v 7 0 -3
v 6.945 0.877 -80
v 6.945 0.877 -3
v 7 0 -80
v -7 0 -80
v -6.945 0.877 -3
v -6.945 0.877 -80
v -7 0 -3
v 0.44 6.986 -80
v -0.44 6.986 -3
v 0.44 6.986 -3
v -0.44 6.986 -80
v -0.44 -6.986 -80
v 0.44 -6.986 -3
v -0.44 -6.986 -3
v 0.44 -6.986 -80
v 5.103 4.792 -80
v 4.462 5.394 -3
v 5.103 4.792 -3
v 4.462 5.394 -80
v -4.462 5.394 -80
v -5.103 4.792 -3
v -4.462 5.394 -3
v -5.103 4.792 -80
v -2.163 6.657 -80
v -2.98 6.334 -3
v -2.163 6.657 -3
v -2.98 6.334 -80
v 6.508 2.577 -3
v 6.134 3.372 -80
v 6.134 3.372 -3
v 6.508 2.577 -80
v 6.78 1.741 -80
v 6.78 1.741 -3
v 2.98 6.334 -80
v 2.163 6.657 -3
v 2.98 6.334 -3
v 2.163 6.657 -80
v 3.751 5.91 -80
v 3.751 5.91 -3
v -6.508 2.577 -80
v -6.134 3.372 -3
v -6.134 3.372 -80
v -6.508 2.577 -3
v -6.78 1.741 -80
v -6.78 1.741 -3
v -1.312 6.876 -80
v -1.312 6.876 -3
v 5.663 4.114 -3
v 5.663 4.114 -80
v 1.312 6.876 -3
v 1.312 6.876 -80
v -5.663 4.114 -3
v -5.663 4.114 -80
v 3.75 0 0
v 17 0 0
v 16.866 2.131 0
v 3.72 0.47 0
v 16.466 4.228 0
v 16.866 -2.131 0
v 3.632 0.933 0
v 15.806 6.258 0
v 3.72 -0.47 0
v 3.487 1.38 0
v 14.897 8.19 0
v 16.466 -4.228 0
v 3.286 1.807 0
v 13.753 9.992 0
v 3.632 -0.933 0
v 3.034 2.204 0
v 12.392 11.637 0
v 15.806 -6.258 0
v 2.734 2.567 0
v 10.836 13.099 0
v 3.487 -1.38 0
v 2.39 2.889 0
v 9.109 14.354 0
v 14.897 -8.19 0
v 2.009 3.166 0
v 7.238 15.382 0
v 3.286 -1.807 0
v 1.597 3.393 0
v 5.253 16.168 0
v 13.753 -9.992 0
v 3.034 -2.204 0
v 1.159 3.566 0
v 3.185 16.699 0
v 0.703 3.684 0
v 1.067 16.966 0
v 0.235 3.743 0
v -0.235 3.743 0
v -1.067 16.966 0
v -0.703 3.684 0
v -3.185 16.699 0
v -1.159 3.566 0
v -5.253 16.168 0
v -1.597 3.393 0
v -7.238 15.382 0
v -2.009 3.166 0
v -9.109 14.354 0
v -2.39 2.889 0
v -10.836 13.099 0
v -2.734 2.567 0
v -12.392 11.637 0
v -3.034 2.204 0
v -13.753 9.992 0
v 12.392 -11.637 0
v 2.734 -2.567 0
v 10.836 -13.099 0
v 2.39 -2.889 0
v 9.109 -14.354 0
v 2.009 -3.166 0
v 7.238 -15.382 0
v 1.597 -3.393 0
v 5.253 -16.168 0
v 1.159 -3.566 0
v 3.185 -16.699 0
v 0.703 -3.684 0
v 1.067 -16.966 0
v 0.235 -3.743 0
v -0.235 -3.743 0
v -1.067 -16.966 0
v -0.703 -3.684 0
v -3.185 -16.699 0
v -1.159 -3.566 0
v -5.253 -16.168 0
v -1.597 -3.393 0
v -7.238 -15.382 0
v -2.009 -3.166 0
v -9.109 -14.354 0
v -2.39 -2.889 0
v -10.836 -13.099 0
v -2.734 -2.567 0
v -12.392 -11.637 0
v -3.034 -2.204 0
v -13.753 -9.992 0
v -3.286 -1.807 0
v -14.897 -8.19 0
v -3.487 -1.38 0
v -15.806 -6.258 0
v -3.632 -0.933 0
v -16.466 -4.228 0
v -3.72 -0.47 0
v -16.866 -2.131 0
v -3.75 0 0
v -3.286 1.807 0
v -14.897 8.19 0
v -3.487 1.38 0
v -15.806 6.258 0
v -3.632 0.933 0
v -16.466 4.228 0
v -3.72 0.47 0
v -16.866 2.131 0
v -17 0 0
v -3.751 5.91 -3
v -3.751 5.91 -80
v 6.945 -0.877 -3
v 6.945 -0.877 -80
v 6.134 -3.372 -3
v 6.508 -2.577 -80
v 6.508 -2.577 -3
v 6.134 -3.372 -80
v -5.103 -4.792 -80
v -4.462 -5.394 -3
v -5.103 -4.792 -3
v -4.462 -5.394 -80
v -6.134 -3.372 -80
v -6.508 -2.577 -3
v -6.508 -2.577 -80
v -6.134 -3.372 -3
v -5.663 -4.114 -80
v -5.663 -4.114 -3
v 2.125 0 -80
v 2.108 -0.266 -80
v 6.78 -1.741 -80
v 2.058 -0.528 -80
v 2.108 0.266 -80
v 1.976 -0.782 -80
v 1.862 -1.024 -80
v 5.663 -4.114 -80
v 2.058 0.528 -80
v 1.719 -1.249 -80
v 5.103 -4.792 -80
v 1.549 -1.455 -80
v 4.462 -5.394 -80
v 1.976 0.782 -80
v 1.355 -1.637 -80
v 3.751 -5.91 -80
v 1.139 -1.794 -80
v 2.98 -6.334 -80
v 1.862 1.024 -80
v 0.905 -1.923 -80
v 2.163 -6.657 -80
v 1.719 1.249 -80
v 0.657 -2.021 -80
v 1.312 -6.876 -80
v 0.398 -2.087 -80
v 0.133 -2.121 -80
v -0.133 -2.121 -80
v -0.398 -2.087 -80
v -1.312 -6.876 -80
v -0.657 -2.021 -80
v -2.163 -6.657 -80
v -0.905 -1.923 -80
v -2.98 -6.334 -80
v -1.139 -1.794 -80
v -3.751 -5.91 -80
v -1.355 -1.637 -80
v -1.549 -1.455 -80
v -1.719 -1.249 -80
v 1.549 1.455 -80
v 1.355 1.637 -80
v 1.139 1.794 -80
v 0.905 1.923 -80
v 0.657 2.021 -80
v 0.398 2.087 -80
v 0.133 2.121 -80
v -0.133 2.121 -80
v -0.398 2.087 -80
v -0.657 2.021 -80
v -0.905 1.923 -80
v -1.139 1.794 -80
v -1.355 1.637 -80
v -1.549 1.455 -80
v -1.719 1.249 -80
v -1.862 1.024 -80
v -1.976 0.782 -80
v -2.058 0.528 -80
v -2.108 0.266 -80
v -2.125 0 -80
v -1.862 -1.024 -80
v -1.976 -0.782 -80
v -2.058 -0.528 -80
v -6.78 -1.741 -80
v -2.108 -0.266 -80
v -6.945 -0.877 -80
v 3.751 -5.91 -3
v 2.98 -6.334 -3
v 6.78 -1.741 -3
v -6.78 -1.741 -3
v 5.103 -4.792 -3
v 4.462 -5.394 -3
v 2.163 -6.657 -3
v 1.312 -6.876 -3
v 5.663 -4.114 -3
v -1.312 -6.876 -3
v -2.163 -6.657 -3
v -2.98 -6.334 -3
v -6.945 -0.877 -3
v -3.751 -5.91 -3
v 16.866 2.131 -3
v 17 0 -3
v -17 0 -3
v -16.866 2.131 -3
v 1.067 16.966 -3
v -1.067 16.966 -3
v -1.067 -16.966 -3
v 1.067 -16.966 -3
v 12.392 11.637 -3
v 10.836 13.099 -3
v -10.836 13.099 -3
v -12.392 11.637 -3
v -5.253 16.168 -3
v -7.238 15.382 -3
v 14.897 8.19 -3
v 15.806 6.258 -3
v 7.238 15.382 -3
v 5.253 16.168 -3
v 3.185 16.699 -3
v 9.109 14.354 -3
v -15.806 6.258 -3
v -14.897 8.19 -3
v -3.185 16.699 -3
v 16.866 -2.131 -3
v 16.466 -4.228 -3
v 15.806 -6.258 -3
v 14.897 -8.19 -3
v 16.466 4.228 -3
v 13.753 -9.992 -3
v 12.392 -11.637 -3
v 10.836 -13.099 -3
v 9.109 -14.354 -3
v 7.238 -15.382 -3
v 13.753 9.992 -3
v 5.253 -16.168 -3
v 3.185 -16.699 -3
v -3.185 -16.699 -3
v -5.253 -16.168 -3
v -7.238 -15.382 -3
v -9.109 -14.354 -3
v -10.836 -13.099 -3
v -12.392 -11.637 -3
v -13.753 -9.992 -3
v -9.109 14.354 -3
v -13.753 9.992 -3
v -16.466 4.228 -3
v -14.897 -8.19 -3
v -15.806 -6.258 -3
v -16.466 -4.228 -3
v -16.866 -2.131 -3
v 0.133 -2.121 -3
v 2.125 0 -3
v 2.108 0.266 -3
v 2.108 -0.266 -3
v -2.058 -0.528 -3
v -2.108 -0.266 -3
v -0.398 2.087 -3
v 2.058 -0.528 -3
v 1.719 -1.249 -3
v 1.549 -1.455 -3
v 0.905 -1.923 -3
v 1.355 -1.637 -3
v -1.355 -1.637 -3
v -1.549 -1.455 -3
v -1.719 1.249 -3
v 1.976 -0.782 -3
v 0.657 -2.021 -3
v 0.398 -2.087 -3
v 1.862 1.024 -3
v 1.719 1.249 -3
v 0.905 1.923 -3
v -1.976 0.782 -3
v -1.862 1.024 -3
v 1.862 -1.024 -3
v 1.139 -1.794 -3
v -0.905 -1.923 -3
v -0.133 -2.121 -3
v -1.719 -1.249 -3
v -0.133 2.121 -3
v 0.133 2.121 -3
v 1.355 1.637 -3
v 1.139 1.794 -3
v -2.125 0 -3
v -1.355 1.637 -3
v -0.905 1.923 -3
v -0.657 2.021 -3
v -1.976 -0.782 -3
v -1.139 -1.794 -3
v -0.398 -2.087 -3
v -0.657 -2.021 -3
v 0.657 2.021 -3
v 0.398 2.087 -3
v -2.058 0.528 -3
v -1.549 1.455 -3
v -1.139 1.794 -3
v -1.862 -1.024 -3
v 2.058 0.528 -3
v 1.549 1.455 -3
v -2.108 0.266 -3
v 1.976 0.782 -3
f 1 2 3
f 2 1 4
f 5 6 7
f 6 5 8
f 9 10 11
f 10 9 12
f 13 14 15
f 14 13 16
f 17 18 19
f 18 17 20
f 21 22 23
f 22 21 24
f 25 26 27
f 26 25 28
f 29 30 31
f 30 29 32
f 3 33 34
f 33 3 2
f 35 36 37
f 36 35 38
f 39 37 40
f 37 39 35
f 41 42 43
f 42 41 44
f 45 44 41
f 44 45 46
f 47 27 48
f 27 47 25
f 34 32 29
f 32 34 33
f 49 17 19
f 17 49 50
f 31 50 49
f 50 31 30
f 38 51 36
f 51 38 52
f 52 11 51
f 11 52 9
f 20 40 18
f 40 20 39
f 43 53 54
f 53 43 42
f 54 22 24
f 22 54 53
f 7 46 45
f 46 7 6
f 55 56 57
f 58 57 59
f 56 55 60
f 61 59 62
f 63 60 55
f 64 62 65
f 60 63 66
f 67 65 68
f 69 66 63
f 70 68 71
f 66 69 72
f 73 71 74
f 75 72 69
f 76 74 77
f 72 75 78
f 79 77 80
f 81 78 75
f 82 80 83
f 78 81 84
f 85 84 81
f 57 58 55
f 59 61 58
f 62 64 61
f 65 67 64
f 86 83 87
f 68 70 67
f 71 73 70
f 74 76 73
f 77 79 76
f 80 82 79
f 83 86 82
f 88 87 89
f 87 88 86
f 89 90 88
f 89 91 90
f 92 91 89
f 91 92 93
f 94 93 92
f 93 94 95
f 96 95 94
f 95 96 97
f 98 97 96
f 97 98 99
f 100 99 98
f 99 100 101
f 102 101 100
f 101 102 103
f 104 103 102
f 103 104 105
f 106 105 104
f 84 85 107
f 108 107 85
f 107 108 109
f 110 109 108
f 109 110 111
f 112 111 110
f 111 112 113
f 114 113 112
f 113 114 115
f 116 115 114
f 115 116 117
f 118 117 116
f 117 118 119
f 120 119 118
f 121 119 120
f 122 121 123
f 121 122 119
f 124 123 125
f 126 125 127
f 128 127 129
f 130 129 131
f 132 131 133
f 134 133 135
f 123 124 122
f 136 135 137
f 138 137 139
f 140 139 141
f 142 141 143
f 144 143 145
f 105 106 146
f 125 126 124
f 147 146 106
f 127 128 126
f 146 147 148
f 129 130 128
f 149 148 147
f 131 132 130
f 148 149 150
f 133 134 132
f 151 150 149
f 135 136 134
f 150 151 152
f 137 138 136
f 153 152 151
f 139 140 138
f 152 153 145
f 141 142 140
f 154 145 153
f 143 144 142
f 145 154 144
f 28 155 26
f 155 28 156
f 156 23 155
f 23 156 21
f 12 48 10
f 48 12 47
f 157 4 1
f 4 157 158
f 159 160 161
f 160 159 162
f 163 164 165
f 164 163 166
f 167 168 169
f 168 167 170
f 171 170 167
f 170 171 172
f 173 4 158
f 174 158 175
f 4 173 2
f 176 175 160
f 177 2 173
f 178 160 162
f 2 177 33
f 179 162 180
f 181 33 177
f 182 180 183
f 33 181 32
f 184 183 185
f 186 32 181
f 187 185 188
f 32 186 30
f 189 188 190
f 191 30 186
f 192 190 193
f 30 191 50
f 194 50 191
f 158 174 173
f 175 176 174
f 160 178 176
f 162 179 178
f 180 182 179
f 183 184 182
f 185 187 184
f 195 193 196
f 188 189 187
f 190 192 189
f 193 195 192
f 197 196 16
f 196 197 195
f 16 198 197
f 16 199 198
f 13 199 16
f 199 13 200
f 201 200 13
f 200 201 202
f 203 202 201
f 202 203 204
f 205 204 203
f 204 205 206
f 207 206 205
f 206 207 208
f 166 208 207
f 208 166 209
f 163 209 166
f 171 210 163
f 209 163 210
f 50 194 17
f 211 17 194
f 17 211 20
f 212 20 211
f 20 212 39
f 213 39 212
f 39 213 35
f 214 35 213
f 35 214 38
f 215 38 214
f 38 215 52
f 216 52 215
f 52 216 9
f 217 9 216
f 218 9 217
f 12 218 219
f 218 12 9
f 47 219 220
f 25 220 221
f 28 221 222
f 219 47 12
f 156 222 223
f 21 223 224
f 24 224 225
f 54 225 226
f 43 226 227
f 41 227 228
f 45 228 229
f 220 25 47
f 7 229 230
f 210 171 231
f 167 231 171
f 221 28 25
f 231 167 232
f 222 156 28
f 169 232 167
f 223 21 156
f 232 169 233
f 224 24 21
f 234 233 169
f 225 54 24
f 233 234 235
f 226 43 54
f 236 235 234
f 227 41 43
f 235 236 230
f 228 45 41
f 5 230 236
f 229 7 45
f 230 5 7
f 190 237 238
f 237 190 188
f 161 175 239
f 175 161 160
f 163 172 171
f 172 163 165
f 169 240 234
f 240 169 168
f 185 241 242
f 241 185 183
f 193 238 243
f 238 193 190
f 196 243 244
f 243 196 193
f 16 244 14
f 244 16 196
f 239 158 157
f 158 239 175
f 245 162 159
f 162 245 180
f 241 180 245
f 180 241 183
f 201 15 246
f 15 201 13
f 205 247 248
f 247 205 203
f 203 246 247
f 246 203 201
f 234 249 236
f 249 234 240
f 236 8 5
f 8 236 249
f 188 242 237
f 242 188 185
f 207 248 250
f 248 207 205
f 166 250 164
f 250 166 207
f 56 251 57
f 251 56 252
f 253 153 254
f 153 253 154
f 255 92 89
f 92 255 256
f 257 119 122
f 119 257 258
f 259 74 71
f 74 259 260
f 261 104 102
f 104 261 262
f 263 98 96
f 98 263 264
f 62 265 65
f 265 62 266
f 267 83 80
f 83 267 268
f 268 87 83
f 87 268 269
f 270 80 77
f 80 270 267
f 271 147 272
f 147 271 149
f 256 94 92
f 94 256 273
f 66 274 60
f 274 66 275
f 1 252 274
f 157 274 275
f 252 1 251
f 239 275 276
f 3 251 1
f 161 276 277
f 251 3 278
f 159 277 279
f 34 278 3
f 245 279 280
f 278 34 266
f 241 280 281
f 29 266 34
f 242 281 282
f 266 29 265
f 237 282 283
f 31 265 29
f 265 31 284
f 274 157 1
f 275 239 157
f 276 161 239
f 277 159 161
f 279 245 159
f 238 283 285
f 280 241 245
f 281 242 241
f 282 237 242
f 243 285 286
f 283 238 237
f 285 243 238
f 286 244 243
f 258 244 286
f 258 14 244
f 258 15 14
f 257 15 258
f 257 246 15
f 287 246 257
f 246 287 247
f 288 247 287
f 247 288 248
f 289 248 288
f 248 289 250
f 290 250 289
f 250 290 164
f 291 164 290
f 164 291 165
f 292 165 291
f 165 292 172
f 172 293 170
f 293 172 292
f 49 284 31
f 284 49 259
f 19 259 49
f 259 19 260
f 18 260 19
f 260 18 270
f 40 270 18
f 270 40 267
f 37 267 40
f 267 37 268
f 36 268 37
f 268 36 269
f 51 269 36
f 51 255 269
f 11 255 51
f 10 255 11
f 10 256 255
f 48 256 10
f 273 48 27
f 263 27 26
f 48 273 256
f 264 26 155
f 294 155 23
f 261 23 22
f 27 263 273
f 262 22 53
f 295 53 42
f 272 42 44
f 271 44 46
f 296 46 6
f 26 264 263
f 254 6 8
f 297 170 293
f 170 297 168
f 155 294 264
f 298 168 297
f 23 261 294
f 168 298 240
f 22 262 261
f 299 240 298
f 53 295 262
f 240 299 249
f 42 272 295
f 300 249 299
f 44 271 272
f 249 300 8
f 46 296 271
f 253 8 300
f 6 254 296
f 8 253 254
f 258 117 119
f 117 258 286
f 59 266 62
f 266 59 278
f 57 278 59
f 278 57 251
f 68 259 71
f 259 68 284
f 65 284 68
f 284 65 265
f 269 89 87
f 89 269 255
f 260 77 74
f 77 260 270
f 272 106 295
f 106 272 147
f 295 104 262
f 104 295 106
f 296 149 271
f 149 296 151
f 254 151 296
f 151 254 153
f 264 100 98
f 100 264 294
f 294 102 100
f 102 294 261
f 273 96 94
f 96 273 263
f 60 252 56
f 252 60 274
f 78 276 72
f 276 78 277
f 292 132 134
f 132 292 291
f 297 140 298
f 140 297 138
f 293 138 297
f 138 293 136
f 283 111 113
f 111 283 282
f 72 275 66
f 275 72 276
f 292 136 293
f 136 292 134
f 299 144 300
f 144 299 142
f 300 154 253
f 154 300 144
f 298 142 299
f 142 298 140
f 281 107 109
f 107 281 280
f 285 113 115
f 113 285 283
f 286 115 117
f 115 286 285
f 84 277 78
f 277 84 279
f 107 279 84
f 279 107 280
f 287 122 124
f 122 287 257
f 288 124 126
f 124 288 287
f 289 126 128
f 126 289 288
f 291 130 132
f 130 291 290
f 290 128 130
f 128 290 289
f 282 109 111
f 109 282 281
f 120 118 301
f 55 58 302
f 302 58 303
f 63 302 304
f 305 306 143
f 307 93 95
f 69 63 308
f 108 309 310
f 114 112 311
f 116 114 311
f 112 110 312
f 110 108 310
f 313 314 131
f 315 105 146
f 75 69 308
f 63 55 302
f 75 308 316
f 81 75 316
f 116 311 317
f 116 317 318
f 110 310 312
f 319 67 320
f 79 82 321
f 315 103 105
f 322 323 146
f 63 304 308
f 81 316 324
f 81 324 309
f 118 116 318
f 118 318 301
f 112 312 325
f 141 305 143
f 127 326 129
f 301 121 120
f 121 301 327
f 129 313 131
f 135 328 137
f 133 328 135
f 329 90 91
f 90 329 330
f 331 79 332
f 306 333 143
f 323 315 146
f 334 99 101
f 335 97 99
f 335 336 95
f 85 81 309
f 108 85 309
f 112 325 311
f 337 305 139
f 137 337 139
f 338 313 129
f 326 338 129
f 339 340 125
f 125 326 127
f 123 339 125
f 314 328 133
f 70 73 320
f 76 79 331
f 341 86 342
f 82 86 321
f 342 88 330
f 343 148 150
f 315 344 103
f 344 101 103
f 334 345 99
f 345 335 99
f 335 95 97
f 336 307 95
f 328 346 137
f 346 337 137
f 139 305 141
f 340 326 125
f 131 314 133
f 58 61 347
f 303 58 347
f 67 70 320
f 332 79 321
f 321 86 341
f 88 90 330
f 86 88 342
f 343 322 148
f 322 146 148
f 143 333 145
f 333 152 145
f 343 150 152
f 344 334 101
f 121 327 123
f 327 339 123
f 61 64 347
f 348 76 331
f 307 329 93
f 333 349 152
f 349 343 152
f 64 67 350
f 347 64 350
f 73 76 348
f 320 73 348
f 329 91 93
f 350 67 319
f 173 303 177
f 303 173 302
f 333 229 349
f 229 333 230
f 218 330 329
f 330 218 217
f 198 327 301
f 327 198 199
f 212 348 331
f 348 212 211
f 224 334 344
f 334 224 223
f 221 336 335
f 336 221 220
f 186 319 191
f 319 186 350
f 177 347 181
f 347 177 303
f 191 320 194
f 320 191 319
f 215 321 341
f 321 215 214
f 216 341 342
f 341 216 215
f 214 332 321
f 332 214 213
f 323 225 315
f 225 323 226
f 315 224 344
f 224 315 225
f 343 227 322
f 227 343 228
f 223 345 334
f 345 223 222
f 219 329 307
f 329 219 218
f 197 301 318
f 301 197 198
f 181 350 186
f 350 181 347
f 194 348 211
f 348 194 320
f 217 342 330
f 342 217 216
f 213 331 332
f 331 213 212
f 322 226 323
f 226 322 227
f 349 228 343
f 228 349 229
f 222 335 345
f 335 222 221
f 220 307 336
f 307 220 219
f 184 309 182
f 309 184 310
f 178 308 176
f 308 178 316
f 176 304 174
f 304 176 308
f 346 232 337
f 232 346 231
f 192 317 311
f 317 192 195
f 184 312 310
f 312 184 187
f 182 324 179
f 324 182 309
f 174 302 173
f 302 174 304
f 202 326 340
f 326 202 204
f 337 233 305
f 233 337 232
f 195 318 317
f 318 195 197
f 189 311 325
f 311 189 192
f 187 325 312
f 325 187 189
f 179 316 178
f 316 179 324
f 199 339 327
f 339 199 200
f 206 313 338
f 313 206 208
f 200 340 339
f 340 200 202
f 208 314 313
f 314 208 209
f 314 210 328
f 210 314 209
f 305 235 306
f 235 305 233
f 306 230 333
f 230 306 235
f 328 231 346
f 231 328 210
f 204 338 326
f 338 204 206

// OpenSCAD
$fn = 50;


difference() {
	union() {
		translate(v = [0, 0, -80.0000000000]) {
			cylinder(h = 80, r = 7.0000000000);
		}
		translate(v = [0, 0, -3.0000000000]) {
			cylinder(h = 3, r = 17.0000000000);
		}
	}
	union() {
		translate(v = [0, 0, 0]) {
			rotate(a = [0, 0, 0]) {
				difference() {
					union() {
						#translate(v = [0, 0, -80.0000000000]) {
							cylinder(h = 80, r = 2.0000000000);
						}
						#translate(v = [0, 0, -3]) {
							cylinder(h = 3, r1 = 2.1250000000, r2 = 3.7500000000);
						}
						#translate(v = [0, 0, -80.0000000000]) {
							cylinder(h = 80, r = 2.1250000000);
						}
						#translate(v = [0, 0, -80.0000000000]) {
							cylinder(h = 80, r = 2.0000000000);
						}
					}
					union();
				}
			}
		}
	}
}
